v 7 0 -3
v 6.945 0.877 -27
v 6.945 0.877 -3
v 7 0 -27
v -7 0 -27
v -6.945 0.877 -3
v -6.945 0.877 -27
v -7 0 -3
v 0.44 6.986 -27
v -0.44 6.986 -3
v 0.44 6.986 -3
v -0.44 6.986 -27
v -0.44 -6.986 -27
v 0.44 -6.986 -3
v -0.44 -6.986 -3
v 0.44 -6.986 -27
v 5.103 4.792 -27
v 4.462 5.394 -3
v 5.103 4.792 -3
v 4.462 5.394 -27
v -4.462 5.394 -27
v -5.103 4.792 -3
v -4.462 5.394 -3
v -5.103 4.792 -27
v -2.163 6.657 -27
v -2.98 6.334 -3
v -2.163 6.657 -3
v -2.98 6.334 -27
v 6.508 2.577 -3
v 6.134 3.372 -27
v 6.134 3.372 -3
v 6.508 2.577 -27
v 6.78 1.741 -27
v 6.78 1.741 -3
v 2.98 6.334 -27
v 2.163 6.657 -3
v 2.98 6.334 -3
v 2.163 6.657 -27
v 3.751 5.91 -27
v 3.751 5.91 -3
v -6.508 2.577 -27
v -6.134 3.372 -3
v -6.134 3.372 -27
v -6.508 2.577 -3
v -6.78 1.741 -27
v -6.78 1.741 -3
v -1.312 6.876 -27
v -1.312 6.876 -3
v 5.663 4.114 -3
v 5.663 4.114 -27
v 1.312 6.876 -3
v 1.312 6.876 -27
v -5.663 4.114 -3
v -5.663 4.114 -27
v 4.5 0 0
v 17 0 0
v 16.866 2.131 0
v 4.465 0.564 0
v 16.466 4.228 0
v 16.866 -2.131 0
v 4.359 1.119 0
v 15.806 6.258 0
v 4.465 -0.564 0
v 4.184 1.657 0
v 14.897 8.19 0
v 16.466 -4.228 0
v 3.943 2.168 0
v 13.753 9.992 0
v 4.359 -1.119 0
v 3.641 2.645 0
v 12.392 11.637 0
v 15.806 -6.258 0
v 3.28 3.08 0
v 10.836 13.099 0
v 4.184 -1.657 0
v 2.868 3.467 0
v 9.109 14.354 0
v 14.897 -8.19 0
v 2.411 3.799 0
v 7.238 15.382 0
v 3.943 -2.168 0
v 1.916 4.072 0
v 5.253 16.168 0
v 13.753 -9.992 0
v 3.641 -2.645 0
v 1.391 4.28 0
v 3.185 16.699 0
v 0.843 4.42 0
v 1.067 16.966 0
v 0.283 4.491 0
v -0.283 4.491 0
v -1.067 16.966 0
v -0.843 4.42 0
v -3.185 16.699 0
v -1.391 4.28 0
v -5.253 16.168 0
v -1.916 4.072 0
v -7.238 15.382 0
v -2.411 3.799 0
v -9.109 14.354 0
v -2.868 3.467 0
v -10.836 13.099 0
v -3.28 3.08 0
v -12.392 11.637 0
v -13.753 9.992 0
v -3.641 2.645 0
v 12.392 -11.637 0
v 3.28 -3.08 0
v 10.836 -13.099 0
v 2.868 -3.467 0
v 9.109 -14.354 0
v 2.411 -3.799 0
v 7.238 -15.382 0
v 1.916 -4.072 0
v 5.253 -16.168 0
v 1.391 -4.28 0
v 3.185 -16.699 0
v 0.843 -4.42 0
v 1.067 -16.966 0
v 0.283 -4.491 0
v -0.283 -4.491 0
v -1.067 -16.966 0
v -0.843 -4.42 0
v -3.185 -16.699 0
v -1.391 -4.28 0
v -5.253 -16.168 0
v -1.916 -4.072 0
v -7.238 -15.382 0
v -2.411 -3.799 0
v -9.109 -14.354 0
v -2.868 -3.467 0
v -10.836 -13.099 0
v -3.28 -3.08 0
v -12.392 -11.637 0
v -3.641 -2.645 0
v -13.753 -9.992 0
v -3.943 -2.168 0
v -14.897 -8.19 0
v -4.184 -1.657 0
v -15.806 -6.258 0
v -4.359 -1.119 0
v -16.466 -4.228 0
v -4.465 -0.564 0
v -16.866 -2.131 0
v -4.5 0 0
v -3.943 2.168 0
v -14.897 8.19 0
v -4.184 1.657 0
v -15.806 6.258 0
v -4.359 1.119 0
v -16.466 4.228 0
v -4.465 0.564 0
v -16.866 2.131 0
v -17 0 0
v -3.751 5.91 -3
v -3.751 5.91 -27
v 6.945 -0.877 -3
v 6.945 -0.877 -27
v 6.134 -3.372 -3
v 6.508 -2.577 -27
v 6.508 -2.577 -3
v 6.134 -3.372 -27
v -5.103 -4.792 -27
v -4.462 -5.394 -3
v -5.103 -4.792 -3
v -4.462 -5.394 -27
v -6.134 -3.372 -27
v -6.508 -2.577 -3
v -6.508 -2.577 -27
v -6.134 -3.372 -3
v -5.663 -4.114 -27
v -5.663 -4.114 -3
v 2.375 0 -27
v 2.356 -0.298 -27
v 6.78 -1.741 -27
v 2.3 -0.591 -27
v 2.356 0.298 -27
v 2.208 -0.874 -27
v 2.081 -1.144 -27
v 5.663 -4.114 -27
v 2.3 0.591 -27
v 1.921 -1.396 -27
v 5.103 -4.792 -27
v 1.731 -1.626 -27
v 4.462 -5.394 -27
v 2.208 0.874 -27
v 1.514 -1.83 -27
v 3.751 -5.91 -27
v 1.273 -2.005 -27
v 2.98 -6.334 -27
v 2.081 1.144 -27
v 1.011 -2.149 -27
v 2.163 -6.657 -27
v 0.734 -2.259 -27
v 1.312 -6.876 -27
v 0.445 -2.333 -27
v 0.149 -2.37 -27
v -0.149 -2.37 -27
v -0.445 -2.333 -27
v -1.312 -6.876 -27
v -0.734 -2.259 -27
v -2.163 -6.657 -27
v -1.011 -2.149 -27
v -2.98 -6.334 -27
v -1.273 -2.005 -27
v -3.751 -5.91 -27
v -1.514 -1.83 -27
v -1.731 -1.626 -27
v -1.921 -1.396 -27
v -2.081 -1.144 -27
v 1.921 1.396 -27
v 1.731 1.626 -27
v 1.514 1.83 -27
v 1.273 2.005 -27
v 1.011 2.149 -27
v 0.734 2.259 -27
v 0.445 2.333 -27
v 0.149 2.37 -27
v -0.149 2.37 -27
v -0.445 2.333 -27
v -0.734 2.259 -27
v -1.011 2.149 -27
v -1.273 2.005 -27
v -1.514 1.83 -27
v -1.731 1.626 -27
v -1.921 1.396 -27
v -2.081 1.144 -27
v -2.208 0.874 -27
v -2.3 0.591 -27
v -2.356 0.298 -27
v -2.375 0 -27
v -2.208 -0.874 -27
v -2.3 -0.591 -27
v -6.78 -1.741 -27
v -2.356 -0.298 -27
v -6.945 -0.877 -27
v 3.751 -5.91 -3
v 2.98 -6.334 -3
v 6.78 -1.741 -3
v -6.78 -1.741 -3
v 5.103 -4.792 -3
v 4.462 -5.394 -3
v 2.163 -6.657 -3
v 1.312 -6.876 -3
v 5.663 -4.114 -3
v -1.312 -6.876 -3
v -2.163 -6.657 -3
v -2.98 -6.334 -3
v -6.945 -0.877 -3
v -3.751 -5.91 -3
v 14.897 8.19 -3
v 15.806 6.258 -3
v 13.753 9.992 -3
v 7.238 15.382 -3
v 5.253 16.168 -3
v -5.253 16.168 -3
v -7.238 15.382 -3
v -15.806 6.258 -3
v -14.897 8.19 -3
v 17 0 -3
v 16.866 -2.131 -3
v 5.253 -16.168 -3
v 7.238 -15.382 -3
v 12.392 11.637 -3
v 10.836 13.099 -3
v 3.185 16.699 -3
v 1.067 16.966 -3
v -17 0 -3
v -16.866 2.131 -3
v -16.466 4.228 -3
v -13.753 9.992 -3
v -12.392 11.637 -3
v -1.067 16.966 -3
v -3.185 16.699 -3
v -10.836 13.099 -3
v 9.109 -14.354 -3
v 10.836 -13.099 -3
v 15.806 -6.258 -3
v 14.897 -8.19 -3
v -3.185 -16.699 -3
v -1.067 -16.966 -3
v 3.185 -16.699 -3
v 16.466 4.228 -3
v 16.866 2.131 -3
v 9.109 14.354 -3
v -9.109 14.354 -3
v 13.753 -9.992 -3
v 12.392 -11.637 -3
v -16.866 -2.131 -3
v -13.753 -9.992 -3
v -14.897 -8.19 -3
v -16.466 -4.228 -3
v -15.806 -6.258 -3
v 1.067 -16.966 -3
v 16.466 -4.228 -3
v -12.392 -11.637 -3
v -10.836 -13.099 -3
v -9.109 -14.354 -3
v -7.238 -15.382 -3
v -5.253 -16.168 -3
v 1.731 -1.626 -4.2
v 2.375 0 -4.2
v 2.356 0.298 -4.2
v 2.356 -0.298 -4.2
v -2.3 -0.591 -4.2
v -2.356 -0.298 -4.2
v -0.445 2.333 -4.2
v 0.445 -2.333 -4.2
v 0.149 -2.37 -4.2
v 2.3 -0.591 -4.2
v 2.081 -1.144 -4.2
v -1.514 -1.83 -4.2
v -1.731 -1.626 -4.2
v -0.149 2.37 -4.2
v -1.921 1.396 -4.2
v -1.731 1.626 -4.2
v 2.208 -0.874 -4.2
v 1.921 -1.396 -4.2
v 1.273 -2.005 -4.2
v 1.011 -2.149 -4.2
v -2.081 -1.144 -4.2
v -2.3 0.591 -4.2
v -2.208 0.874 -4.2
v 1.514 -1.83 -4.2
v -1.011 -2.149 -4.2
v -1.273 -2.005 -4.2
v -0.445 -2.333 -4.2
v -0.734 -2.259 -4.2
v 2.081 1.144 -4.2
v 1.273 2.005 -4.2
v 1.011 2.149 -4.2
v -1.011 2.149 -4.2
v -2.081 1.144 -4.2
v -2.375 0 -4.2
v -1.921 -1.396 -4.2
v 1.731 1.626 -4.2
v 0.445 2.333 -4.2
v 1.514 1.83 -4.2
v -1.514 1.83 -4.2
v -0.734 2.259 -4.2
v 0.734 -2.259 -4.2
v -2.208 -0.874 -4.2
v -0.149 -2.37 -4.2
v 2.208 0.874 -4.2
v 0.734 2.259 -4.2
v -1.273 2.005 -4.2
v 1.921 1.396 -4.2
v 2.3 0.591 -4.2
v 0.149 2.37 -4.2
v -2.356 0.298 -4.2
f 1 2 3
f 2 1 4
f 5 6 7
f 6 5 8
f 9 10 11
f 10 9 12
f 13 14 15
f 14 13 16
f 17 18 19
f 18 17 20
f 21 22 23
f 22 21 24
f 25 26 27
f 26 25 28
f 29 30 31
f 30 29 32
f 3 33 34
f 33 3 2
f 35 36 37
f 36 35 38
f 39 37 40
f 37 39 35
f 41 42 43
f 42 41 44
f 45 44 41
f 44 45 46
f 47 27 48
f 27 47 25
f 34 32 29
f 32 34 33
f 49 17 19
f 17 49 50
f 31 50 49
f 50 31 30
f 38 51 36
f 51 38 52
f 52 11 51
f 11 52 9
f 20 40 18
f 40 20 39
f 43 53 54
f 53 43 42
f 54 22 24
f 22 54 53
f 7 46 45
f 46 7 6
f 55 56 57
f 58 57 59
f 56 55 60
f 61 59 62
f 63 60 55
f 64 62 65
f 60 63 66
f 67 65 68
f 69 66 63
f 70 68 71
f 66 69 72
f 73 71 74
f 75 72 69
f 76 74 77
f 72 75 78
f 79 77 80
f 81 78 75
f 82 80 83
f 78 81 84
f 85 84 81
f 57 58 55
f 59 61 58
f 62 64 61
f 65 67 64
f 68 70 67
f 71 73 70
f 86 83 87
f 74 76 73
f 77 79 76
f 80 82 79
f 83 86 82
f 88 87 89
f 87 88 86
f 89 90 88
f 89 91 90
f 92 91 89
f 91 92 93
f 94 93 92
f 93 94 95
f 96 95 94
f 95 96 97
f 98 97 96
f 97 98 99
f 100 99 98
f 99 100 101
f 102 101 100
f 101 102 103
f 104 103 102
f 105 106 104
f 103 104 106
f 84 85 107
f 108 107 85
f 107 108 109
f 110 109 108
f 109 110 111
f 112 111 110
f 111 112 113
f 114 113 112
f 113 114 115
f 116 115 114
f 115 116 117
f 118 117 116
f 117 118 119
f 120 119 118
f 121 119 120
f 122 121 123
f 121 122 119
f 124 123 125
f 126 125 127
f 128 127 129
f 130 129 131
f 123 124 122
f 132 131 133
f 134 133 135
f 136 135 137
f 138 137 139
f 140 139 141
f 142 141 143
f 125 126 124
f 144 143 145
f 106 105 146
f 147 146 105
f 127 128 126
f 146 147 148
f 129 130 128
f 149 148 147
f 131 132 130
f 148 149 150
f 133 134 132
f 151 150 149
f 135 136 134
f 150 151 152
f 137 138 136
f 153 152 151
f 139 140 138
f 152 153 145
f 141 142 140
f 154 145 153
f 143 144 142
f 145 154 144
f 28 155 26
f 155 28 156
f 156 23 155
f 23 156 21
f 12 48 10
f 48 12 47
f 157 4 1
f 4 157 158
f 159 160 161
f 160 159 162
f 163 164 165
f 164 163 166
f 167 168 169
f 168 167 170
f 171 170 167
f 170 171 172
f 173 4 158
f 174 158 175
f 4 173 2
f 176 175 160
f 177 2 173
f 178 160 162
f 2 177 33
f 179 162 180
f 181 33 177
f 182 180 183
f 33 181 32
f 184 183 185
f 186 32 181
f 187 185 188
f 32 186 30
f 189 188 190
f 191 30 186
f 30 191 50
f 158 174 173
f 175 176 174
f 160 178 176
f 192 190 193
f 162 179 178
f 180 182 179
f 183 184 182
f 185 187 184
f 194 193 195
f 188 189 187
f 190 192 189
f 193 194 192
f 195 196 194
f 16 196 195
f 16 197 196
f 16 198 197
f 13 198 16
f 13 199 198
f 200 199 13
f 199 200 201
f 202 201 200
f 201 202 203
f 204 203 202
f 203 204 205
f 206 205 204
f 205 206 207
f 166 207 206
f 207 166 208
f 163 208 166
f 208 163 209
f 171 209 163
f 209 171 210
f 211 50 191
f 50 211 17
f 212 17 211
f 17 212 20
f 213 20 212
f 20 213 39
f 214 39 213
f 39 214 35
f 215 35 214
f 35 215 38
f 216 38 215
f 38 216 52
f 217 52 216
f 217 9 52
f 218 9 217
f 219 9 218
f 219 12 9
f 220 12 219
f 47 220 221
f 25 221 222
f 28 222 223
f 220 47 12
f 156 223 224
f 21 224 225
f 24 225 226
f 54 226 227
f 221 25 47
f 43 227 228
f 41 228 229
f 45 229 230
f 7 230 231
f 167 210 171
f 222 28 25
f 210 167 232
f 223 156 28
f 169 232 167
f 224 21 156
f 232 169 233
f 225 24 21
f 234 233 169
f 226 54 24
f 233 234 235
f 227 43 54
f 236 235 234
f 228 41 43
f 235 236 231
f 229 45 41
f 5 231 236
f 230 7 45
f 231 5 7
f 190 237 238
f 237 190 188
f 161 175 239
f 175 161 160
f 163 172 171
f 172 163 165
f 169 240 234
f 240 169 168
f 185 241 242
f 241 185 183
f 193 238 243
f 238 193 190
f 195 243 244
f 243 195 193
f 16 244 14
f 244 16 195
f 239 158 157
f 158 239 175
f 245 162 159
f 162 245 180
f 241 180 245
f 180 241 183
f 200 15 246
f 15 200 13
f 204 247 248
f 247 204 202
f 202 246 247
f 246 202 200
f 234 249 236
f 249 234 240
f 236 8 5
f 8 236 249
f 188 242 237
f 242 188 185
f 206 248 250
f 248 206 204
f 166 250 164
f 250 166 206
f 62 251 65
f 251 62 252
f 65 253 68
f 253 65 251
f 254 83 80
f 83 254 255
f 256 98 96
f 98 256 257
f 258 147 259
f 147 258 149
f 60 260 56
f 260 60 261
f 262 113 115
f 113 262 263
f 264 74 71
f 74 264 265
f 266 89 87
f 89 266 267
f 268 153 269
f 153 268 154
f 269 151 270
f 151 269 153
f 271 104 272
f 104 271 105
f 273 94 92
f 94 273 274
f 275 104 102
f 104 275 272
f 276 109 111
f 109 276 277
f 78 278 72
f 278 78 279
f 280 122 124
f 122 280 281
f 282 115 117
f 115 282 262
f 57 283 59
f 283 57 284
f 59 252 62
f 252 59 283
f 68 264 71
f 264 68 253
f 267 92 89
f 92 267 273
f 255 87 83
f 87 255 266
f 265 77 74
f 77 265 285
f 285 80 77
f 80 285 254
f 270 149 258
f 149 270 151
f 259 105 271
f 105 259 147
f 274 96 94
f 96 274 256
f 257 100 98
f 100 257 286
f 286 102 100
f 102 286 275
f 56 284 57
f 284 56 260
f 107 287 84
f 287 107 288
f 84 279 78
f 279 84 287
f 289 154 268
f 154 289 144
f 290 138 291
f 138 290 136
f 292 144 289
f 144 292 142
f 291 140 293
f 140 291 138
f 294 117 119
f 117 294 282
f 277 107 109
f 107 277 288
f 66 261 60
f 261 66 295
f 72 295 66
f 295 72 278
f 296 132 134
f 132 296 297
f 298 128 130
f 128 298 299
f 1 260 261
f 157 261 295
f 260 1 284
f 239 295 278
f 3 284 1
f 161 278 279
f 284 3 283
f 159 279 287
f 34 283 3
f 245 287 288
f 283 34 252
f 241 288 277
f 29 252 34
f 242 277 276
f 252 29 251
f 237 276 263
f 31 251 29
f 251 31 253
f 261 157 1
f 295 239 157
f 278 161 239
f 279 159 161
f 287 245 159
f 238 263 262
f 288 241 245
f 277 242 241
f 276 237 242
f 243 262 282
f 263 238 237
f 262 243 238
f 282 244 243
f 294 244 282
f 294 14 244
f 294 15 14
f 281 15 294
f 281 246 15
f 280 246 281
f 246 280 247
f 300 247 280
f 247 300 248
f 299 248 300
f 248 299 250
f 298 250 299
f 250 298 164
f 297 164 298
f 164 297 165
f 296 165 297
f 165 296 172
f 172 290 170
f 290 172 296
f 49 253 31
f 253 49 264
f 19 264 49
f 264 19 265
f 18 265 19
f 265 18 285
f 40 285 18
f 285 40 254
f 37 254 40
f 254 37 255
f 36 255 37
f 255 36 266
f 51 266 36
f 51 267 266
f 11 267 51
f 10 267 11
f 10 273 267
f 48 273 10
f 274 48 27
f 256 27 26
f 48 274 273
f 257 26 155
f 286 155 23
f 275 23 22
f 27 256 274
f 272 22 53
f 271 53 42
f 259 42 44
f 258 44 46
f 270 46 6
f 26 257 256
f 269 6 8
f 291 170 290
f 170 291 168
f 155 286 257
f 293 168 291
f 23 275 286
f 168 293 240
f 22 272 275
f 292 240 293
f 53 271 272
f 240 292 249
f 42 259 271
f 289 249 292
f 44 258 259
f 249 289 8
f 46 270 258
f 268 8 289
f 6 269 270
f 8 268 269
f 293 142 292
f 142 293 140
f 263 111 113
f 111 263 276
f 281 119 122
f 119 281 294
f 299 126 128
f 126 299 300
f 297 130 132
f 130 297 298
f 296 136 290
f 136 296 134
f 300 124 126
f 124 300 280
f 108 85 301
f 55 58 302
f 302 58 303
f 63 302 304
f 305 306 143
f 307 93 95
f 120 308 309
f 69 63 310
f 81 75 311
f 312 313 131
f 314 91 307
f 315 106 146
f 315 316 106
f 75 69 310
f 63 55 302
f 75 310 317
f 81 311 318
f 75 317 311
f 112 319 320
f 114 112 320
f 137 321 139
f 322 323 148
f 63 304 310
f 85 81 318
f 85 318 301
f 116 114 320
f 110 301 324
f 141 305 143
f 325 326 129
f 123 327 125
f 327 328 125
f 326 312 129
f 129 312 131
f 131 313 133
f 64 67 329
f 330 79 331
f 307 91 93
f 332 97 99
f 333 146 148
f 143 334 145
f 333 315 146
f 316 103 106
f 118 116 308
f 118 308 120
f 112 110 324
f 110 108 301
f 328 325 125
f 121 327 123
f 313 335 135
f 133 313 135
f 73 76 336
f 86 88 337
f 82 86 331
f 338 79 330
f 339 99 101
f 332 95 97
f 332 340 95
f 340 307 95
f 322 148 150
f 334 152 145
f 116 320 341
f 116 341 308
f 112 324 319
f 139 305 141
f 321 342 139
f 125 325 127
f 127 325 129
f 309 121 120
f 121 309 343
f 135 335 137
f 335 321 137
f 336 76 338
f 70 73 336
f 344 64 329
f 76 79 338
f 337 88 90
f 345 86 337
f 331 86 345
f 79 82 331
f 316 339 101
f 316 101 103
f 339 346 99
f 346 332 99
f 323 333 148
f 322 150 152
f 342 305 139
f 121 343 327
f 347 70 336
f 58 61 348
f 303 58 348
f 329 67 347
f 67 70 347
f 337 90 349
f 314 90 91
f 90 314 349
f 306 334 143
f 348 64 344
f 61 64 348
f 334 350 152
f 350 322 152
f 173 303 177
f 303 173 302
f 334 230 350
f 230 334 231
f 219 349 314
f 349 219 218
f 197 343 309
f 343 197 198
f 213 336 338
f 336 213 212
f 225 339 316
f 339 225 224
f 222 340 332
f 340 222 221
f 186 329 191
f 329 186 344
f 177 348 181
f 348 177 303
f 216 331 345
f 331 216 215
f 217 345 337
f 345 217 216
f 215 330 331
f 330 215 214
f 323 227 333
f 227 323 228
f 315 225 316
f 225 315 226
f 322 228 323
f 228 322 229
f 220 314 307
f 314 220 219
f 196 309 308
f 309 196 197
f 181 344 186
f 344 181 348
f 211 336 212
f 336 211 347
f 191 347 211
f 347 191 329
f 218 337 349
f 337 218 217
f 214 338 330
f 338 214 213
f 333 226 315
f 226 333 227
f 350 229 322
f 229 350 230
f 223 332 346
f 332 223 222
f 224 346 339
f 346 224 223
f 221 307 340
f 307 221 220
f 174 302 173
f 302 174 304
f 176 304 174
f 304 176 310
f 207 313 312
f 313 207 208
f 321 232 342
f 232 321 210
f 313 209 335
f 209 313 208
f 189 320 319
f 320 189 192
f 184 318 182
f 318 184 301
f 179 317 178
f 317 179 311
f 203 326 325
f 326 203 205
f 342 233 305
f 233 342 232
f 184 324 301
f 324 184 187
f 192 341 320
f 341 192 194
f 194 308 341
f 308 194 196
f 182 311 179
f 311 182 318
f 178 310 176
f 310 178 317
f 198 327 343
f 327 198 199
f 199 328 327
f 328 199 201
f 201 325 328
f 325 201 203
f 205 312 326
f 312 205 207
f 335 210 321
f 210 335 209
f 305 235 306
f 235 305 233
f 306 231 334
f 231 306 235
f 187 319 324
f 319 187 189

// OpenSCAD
$fn = 50;


difference() {
	union() {
		translate(v = [0, 0, -27.0000000000]) {
			cylinder(h = 27, r = 7.0000000000);
		}
		translate(v = [0, 0, -3.0000000000]) {
			cylinder(h = 3, r = 17.0000000000);
		}
	}
	union() {
		translate(v = [0, 0, 0]) {
			rotate(a = [0, 0, 0]) {
				difference() {
					union() {
						#translate(v = [0, 0, -27.0000000000]) {
							cylinder(h = 27, r = 2.2500000000);
						}
						#translate(v = [0, 0, -4.2000000000]) {
							cylinder(h = 4.2000000000, r1 = 2.3750000000, r2 = 4.5000000000);
						}
						#translate(v = [0, 0, -27.0000000000]) {
							cylinder(h = 27, r = 2.3750000000);
						}
						#translate(v = [0, 0, -27.0000000000]) {
							cylinder(h = 27, r = 2.2500000000);
						}
					}
					union();
				}
			}
		}
	}
}
